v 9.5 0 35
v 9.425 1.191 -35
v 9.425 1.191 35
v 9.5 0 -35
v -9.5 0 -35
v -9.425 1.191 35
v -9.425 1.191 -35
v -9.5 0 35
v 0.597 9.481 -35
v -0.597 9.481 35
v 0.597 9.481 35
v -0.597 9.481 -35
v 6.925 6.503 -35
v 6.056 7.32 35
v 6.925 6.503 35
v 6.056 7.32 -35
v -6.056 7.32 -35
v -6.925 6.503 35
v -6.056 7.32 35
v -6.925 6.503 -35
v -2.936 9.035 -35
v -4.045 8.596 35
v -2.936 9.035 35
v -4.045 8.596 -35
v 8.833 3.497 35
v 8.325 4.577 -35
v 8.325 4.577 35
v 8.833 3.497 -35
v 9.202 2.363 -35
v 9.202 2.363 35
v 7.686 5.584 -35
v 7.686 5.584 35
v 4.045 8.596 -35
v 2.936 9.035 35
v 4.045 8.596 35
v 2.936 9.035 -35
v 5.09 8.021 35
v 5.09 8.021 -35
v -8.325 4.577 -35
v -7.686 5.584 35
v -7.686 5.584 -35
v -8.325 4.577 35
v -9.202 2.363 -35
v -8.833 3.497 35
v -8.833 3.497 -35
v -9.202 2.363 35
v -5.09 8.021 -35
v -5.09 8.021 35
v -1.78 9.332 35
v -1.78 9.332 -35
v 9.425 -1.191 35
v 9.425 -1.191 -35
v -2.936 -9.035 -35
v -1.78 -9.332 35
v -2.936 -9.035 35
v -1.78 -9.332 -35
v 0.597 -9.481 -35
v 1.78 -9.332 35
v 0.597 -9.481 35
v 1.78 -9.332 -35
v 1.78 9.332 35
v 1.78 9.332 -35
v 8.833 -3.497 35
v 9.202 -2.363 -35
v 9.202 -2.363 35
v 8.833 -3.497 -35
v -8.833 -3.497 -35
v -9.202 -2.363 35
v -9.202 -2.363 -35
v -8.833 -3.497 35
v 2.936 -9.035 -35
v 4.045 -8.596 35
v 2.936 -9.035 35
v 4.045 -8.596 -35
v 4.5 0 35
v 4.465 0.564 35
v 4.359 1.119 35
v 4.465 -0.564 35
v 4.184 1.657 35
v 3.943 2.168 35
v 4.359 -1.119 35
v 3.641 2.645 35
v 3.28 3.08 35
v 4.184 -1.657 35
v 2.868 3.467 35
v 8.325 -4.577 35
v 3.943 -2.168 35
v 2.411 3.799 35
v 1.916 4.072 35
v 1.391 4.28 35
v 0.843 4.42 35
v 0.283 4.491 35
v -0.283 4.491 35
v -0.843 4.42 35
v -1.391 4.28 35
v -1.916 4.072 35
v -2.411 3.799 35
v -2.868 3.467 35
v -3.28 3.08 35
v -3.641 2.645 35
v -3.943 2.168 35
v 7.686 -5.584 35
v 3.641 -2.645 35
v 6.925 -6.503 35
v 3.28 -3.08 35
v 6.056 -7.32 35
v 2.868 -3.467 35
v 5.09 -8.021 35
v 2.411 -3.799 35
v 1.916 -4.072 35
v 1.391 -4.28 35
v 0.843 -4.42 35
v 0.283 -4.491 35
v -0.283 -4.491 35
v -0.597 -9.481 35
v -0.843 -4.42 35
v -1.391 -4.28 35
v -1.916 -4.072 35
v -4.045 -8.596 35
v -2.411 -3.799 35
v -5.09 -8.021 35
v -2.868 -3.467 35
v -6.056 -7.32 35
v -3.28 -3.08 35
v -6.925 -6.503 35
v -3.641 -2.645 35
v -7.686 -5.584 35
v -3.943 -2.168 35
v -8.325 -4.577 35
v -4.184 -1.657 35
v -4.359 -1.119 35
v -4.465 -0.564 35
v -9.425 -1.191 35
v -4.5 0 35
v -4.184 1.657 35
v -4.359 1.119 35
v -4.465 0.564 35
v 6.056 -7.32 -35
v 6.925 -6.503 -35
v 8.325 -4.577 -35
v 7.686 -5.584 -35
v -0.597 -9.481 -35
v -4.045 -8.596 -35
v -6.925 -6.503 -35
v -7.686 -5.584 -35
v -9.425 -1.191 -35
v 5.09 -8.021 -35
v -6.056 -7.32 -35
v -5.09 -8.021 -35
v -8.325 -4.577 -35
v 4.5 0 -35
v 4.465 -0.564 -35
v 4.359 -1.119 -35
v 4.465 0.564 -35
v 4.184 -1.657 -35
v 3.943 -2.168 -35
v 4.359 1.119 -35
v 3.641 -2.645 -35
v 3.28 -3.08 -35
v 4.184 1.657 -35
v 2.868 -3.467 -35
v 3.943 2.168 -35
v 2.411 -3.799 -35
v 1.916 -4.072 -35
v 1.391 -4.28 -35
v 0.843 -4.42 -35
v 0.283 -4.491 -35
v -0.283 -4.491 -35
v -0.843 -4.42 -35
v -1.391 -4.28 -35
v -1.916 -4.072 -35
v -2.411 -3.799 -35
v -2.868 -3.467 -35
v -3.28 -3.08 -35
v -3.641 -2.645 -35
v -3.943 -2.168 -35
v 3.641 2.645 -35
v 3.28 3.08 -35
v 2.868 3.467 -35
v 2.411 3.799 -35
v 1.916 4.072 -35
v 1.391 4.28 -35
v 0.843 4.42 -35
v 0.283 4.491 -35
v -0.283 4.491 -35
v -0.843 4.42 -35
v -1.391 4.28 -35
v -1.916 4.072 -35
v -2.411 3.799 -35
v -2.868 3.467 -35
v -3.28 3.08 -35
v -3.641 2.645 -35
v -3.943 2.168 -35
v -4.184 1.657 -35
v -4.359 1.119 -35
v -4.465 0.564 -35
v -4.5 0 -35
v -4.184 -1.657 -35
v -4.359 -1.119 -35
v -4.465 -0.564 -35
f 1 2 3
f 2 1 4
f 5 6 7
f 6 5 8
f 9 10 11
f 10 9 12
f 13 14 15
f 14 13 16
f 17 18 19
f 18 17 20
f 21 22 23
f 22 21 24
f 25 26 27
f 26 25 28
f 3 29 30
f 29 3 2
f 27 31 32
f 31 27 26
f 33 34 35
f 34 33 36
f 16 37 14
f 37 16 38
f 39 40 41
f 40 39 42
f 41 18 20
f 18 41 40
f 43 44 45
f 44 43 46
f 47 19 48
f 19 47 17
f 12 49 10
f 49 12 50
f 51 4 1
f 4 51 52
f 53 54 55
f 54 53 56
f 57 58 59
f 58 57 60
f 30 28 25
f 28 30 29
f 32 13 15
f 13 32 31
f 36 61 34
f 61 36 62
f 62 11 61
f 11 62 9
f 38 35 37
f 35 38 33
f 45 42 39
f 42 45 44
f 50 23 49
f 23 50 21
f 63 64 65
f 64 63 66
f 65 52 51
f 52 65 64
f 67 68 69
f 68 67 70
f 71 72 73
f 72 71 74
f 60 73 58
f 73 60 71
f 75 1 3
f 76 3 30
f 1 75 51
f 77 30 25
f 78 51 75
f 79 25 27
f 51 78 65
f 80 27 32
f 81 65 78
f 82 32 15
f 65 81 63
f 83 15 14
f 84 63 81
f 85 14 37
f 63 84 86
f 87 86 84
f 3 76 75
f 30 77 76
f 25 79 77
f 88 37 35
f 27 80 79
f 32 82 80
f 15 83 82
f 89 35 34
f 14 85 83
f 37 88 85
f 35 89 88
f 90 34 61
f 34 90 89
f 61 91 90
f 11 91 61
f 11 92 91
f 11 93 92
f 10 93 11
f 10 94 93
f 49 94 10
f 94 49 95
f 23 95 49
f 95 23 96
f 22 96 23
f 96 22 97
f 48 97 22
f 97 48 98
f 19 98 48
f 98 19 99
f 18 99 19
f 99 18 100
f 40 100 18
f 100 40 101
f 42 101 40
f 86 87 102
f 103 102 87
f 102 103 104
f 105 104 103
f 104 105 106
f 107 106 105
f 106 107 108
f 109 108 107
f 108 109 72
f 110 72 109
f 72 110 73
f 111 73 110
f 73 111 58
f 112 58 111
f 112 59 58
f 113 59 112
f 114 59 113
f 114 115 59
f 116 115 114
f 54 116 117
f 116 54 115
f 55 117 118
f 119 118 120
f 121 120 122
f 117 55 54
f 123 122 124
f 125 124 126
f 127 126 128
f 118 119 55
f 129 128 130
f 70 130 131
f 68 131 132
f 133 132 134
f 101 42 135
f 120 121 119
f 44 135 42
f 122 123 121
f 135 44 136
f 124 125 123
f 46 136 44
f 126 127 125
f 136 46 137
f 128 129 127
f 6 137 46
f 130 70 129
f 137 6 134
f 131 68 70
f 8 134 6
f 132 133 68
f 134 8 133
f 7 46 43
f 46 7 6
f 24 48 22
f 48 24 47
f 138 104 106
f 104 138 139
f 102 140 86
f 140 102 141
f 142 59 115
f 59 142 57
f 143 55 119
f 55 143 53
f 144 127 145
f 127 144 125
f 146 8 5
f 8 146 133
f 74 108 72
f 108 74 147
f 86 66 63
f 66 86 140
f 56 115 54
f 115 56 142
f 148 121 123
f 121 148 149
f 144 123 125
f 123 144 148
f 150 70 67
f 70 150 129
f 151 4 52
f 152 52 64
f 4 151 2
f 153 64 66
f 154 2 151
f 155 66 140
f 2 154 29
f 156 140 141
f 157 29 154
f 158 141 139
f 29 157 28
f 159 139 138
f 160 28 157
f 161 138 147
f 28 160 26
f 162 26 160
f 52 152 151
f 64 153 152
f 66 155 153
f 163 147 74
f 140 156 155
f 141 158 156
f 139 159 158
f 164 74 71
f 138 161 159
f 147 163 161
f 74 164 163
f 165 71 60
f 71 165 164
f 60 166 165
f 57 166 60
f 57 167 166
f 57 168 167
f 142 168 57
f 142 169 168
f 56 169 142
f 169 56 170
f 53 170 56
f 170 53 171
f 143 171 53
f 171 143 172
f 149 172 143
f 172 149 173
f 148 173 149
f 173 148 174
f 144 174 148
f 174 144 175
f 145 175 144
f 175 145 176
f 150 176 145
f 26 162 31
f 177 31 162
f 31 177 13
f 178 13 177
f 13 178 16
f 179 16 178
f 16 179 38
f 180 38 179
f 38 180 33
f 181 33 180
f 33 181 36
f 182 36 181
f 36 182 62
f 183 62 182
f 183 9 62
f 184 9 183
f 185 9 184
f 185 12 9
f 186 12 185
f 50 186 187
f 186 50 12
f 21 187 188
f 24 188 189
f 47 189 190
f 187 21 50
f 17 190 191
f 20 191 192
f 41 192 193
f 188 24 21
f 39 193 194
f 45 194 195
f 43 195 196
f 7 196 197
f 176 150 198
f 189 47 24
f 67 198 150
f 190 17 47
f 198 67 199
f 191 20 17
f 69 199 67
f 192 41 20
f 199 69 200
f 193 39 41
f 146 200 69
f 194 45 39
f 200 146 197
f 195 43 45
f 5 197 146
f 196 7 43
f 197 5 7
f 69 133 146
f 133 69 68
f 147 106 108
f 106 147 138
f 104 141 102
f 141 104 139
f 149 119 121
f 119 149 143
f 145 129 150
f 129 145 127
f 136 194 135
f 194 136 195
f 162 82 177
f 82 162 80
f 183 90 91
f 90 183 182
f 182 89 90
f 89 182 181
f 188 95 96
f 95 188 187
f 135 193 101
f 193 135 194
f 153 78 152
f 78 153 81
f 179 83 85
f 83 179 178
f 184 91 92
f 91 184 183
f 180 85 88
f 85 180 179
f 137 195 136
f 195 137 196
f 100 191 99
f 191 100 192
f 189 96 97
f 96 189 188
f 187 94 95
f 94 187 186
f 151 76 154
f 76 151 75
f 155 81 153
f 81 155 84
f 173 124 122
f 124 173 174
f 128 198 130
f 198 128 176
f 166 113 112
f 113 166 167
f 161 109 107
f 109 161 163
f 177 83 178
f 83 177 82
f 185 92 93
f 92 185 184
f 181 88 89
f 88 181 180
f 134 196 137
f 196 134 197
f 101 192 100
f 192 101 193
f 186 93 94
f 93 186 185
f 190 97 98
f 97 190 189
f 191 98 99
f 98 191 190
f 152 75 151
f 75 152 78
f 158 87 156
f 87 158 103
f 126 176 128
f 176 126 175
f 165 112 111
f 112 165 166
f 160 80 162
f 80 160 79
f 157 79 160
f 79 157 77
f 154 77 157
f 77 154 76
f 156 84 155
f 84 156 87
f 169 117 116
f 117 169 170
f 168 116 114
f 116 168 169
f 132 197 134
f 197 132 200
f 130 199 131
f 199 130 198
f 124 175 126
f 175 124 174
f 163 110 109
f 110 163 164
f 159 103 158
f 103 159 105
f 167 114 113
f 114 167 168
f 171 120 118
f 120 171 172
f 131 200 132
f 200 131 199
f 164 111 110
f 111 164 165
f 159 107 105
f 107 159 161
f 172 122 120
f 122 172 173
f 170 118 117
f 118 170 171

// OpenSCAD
$fn = 50;


difference() {
	union() {
		translate(v = [0, 0, -35.0000000000]) {
			cylinder(h = 70, r = 9.5000000000);
		}
	}
	union() {
		translate(v = [0, 0, -100.0000000000]) {
			cylinder(h = 200, r = 4.5000000000);
		}
	}
}
